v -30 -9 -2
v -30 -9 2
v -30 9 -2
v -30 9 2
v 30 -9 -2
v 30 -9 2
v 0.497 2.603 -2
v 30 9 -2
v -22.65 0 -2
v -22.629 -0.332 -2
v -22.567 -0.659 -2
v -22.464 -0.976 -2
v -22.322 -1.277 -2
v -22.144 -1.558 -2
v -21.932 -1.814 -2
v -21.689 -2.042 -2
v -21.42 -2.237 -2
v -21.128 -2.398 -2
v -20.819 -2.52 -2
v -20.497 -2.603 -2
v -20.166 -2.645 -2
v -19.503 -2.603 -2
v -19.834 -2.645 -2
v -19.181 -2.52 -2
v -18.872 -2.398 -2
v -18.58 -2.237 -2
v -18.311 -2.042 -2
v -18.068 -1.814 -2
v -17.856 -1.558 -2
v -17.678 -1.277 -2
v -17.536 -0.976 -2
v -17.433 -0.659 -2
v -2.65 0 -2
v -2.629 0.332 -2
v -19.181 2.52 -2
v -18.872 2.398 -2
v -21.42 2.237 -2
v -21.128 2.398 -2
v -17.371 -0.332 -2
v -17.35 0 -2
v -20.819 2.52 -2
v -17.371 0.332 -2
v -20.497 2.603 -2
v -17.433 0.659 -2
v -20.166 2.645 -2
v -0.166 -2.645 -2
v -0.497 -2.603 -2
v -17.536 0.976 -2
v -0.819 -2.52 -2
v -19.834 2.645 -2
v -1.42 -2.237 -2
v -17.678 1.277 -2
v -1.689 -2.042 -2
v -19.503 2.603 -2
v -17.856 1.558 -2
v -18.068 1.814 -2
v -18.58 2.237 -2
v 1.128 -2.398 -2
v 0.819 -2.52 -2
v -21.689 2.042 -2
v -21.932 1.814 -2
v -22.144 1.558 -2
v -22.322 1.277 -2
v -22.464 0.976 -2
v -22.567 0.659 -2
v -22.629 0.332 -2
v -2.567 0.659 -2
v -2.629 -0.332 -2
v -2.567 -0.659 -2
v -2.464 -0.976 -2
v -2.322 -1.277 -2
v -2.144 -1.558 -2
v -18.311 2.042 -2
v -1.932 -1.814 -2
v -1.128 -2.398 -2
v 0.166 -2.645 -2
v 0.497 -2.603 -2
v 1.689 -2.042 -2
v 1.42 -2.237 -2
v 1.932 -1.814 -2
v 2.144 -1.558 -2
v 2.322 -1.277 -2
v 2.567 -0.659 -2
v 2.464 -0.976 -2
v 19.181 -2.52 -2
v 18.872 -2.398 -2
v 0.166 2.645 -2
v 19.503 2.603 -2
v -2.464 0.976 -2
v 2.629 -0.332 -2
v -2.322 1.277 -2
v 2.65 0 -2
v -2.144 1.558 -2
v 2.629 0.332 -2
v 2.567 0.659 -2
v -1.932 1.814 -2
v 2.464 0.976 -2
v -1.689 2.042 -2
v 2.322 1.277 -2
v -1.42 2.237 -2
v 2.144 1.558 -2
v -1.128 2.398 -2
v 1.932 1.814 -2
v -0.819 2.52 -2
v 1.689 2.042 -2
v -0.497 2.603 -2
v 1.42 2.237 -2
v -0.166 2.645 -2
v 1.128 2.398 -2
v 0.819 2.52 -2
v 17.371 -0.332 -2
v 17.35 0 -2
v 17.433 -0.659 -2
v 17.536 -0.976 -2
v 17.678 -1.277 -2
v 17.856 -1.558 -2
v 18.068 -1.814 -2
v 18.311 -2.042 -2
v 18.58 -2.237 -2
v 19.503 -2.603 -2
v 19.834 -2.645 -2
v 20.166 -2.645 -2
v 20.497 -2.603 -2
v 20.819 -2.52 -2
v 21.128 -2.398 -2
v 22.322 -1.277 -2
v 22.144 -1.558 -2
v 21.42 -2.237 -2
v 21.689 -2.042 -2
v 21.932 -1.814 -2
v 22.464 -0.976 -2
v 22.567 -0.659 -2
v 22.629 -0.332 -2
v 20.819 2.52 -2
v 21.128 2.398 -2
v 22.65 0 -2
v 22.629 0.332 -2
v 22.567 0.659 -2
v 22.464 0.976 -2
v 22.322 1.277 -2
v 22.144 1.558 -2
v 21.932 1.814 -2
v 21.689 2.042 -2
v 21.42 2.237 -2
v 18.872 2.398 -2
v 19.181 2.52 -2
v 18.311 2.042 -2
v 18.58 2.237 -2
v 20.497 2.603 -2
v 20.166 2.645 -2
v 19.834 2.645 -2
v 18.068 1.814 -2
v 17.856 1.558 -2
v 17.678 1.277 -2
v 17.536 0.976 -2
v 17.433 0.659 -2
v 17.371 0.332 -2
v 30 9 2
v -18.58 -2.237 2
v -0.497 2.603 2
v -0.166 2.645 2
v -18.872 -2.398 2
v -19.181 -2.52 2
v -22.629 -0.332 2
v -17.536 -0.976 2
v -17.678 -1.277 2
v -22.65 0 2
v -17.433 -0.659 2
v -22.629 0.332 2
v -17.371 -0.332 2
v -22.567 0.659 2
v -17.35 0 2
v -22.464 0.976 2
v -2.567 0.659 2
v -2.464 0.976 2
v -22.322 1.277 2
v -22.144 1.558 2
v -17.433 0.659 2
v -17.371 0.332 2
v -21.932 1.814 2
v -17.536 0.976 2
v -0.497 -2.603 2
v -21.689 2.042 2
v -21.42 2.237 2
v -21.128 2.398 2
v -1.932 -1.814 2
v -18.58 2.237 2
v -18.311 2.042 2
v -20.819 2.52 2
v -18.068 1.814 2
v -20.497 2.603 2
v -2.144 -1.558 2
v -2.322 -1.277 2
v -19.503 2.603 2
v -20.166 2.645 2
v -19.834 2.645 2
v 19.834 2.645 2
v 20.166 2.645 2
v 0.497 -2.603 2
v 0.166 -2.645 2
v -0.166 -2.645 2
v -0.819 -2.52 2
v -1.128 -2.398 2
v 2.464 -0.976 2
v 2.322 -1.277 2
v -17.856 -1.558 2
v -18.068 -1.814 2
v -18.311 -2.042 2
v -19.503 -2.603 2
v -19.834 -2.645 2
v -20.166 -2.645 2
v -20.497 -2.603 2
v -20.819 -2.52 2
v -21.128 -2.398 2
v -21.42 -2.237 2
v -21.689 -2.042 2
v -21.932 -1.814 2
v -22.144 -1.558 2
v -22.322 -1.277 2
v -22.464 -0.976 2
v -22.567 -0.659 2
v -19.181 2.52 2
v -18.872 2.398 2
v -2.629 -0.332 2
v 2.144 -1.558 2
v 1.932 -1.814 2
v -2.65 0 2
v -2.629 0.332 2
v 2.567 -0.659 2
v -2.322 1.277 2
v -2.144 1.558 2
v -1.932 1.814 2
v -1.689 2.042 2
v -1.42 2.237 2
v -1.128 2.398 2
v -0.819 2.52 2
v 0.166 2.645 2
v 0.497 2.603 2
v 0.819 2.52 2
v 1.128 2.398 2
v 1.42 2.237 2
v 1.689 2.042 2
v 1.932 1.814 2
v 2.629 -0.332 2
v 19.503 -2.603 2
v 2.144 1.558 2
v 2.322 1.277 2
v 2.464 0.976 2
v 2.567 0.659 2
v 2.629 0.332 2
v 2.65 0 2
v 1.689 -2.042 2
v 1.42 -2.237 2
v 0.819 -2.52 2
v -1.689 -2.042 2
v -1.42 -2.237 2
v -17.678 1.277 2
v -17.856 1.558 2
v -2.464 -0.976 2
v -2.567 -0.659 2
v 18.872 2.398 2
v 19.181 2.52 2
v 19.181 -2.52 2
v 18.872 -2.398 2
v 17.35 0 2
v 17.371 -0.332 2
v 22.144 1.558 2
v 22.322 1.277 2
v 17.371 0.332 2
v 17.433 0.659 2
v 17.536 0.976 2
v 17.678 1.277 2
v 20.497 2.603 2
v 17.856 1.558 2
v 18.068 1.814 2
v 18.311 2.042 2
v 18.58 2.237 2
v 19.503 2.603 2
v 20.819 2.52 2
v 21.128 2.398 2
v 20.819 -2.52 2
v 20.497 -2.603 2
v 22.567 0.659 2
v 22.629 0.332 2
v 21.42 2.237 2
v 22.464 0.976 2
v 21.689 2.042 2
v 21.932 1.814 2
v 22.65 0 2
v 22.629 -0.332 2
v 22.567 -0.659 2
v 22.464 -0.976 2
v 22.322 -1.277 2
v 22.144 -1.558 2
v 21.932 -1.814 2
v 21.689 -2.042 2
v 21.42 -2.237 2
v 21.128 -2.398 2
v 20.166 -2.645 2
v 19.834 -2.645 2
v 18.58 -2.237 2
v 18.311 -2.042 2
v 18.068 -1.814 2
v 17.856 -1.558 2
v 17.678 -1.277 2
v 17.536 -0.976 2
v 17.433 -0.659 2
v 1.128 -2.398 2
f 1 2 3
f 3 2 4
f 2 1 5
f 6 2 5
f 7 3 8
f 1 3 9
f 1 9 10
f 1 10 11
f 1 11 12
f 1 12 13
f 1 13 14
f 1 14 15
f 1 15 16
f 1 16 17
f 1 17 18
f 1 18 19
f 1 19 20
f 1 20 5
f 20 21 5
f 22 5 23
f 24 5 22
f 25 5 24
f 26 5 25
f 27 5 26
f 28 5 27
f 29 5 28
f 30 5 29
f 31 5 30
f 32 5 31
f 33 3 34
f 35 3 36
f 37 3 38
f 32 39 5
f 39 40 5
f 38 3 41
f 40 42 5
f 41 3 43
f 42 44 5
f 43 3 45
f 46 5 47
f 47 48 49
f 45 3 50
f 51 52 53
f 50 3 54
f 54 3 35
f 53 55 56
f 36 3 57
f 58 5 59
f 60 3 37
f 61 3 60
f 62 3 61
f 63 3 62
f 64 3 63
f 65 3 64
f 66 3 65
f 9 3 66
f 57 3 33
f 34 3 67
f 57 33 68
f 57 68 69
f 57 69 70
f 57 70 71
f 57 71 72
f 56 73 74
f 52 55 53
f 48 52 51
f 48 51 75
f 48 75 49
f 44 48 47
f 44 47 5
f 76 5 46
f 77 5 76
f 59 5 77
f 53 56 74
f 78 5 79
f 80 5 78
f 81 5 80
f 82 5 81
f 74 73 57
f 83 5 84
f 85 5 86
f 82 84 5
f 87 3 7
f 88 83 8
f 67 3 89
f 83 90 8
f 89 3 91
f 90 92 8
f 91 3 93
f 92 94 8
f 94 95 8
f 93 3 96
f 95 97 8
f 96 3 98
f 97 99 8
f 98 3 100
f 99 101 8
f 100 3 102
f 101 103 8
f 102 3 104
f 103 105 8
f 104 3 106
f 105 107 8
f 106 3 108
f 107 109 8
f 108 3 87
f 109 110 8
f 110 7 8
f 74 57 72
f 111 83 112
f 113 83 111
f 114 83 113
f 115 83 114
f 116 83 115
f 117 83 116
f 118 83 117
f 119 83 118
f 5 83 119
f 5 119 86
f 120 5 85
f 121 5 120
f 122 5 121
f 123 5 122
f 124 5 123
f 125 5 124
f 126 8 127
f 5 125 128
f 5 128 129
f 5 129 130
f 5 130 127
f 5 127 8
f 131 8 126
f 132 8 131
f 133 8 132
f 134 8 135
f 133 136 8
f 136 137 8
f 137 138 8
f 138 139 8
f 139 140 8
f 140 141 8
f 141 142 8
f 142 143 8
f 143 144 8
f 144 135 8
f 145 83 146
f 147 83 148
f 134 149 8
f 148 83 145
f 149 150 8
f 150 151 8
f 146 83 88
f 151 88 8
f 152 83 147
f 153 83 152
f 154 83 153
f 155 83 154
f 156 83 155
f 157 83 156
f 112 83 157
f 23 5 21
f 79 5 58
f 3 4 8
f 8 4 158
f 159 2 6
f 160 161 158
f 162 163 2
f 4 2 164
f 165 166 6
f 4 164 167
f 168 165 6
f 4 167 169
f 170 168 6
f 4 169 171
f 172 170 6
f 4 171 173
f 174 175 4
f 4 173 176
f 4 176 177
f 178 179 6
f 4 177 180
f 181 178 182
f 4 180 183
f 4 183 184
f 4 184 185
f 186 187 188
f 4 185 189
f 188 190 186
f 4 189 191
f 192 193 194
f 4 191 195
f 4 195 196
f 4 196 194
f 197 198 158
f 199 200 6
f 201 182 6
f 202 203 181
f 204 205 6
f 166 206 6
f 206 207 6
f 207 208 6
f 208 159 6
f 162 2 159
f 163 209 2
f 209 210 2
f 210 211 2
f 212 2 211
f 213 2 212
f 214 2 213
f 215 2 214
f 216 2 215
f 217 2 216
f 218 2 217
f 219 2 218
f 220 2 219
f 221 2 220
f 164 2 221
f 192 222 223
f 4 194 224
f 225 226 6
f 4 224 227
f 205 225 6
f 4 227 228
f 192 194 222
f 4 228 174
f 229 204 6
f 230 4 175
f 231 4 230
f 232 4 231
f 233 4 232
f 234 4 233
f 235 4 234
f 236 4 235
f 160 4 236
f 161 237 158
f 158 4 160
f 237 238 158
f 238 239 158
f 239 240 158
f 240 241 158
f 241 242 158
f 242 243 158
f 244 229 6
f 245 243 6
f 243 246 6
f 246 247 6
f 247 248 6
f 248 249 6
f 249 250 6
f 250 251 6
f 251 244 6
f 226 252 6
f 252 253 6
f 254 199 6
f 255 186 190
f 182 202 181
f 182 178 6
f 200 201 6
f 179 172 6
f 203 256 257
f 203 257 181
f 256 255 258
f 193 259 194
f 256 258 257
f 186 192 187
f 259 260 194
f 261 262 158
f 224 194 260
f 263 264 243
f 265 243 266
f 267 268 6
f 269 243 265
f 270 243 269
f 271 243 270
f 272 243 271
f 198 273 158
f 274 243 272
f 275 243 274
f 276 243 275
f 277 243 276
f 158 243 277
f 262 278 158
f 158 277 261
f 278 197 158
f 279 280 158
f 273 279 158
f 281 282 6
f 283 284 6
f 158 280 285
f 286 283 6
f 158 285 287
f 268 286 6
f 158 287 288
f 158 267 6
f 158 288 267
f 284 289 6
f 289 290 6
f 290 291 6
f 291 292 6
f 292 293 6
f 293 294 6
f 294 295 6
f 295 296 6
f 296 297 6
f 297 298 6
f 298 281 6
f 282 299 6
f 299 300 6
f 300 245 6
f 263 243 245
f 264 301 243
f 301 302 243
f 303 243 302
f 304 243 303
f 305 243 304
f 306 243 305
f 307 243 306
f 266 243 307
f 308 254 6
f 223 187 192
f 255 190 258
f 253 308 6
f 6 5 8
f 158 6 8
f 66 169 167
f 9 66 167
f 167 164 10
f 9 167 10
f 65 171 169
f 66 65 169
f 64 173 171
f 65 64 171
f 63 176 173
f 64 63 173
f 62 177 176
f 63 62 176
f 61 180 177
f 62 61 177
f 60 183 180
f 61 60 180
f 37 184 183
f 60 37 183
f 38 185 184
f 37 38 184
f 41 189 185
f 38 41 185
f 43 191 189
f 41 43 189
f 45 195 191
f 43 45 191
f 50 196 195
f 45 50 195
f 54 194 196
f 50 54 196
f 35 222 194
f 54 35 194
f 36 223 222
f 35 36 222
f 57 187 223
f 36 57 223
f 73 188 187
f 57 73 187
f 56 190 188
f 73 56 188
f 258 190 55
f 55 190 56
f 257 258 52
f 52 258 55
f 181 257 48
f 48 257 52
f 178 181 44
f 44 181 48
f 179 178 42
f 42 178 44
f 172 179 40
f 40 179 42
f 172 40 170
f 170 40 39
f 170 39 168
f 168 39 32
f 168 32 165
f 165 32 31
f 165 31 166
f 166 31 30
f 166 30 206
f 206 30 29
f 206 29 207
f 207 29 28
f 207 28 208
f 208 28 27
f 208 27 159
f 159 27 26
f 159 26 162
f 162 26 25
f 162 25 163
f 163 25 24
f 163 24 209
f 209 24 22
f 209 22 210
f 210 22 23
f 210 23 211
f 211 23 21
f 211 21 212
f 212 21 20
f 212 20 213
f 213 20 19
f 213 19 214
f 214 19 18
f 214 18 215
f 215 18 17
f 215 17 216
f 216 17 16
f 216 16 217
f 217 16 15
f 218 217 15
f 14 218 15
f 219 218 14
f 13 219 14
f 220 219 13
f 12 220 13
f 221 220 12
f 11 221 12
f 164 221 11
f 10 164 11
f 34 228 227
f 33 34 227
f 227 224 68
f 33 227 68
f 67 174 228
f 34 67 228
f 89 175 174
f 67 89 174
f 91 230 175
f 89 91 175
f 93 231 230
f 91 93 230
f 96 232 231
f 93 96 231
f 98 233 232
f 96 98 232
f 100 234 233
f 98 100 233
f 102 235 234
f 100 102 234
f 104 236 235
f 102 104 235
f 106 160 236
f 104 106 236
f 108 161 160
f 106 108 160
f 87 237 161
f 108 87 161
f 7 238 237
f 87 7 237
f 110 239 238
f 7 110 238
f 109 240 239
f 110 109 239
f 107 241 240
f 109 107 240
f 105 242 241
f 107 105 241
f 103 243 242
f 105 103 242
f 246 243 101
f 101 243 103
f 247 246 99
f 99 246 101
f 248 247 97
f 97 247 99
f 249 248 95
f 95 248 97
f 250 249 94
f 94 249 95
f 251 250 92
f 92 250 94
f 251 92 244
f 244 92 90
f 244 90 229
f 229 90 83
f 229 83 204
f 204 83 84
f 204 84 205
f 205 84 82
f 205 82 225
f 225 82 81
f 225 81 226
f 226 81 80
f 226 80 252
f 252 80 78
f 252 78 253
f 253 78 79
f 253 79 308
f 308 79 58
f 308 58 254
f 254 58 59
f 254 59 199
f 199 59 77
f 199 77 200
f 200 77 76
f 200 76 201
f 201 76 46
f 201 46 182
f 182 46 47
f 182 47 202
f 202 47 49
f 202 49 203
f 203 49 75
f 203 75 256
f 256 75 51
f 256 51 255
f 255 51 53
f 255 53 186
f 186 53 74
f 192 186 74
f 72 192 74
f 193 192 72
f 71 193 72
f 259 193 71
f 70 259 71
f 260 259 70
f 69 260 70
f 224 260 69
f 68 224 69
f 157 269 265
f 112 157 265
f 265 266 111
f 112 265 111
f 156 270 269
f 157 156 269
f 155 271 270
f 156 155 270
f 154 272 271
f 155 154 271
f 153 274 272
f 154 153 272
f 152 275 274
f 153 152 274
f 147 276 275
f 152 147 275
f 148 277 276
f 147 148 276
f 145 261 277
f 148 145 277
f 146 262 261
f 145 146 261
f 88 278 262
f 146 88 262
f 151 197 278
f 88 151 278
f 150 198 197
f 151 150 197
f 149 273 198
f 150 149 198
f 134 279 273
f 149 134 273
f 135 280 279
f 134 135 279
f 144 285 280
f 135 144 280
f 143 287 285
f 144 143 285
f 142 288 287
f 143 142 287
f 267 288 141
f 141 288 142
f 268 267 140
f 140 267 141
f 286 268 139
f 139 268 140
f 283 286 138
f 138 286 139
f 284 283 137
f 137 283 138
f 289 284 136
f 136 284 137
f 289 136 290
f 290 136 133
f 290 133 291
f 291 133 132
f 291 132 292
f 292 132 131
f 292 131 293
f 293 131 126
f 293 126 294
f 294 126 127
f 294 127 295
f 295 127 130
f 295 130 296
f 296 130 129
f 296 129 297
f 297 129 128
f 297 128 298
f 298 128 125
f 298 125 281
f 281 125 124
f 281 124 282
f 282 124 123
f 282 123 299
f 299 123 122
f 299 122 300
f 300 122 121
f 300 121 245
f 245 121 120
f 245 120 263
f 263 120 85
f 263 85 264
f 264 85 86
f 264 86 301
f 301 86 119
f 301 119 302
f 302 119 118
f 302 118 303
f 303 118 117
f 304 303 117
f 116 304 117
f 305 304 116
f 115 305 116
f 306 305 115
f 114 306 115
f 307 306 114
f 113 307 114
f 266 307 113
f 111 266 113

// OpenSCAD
w = 60;
d = 18;
h = 4;
r = 5.3 / 2;
spacing = 20;
difference() {
	cube([w, d, h], center=true);
	for (dx = [-spacing, 0, spacing]) {
		translate([dx, 0, 0])
		cylinder(r=r, h=2*h, center=true, $fn=50);
	}
}
